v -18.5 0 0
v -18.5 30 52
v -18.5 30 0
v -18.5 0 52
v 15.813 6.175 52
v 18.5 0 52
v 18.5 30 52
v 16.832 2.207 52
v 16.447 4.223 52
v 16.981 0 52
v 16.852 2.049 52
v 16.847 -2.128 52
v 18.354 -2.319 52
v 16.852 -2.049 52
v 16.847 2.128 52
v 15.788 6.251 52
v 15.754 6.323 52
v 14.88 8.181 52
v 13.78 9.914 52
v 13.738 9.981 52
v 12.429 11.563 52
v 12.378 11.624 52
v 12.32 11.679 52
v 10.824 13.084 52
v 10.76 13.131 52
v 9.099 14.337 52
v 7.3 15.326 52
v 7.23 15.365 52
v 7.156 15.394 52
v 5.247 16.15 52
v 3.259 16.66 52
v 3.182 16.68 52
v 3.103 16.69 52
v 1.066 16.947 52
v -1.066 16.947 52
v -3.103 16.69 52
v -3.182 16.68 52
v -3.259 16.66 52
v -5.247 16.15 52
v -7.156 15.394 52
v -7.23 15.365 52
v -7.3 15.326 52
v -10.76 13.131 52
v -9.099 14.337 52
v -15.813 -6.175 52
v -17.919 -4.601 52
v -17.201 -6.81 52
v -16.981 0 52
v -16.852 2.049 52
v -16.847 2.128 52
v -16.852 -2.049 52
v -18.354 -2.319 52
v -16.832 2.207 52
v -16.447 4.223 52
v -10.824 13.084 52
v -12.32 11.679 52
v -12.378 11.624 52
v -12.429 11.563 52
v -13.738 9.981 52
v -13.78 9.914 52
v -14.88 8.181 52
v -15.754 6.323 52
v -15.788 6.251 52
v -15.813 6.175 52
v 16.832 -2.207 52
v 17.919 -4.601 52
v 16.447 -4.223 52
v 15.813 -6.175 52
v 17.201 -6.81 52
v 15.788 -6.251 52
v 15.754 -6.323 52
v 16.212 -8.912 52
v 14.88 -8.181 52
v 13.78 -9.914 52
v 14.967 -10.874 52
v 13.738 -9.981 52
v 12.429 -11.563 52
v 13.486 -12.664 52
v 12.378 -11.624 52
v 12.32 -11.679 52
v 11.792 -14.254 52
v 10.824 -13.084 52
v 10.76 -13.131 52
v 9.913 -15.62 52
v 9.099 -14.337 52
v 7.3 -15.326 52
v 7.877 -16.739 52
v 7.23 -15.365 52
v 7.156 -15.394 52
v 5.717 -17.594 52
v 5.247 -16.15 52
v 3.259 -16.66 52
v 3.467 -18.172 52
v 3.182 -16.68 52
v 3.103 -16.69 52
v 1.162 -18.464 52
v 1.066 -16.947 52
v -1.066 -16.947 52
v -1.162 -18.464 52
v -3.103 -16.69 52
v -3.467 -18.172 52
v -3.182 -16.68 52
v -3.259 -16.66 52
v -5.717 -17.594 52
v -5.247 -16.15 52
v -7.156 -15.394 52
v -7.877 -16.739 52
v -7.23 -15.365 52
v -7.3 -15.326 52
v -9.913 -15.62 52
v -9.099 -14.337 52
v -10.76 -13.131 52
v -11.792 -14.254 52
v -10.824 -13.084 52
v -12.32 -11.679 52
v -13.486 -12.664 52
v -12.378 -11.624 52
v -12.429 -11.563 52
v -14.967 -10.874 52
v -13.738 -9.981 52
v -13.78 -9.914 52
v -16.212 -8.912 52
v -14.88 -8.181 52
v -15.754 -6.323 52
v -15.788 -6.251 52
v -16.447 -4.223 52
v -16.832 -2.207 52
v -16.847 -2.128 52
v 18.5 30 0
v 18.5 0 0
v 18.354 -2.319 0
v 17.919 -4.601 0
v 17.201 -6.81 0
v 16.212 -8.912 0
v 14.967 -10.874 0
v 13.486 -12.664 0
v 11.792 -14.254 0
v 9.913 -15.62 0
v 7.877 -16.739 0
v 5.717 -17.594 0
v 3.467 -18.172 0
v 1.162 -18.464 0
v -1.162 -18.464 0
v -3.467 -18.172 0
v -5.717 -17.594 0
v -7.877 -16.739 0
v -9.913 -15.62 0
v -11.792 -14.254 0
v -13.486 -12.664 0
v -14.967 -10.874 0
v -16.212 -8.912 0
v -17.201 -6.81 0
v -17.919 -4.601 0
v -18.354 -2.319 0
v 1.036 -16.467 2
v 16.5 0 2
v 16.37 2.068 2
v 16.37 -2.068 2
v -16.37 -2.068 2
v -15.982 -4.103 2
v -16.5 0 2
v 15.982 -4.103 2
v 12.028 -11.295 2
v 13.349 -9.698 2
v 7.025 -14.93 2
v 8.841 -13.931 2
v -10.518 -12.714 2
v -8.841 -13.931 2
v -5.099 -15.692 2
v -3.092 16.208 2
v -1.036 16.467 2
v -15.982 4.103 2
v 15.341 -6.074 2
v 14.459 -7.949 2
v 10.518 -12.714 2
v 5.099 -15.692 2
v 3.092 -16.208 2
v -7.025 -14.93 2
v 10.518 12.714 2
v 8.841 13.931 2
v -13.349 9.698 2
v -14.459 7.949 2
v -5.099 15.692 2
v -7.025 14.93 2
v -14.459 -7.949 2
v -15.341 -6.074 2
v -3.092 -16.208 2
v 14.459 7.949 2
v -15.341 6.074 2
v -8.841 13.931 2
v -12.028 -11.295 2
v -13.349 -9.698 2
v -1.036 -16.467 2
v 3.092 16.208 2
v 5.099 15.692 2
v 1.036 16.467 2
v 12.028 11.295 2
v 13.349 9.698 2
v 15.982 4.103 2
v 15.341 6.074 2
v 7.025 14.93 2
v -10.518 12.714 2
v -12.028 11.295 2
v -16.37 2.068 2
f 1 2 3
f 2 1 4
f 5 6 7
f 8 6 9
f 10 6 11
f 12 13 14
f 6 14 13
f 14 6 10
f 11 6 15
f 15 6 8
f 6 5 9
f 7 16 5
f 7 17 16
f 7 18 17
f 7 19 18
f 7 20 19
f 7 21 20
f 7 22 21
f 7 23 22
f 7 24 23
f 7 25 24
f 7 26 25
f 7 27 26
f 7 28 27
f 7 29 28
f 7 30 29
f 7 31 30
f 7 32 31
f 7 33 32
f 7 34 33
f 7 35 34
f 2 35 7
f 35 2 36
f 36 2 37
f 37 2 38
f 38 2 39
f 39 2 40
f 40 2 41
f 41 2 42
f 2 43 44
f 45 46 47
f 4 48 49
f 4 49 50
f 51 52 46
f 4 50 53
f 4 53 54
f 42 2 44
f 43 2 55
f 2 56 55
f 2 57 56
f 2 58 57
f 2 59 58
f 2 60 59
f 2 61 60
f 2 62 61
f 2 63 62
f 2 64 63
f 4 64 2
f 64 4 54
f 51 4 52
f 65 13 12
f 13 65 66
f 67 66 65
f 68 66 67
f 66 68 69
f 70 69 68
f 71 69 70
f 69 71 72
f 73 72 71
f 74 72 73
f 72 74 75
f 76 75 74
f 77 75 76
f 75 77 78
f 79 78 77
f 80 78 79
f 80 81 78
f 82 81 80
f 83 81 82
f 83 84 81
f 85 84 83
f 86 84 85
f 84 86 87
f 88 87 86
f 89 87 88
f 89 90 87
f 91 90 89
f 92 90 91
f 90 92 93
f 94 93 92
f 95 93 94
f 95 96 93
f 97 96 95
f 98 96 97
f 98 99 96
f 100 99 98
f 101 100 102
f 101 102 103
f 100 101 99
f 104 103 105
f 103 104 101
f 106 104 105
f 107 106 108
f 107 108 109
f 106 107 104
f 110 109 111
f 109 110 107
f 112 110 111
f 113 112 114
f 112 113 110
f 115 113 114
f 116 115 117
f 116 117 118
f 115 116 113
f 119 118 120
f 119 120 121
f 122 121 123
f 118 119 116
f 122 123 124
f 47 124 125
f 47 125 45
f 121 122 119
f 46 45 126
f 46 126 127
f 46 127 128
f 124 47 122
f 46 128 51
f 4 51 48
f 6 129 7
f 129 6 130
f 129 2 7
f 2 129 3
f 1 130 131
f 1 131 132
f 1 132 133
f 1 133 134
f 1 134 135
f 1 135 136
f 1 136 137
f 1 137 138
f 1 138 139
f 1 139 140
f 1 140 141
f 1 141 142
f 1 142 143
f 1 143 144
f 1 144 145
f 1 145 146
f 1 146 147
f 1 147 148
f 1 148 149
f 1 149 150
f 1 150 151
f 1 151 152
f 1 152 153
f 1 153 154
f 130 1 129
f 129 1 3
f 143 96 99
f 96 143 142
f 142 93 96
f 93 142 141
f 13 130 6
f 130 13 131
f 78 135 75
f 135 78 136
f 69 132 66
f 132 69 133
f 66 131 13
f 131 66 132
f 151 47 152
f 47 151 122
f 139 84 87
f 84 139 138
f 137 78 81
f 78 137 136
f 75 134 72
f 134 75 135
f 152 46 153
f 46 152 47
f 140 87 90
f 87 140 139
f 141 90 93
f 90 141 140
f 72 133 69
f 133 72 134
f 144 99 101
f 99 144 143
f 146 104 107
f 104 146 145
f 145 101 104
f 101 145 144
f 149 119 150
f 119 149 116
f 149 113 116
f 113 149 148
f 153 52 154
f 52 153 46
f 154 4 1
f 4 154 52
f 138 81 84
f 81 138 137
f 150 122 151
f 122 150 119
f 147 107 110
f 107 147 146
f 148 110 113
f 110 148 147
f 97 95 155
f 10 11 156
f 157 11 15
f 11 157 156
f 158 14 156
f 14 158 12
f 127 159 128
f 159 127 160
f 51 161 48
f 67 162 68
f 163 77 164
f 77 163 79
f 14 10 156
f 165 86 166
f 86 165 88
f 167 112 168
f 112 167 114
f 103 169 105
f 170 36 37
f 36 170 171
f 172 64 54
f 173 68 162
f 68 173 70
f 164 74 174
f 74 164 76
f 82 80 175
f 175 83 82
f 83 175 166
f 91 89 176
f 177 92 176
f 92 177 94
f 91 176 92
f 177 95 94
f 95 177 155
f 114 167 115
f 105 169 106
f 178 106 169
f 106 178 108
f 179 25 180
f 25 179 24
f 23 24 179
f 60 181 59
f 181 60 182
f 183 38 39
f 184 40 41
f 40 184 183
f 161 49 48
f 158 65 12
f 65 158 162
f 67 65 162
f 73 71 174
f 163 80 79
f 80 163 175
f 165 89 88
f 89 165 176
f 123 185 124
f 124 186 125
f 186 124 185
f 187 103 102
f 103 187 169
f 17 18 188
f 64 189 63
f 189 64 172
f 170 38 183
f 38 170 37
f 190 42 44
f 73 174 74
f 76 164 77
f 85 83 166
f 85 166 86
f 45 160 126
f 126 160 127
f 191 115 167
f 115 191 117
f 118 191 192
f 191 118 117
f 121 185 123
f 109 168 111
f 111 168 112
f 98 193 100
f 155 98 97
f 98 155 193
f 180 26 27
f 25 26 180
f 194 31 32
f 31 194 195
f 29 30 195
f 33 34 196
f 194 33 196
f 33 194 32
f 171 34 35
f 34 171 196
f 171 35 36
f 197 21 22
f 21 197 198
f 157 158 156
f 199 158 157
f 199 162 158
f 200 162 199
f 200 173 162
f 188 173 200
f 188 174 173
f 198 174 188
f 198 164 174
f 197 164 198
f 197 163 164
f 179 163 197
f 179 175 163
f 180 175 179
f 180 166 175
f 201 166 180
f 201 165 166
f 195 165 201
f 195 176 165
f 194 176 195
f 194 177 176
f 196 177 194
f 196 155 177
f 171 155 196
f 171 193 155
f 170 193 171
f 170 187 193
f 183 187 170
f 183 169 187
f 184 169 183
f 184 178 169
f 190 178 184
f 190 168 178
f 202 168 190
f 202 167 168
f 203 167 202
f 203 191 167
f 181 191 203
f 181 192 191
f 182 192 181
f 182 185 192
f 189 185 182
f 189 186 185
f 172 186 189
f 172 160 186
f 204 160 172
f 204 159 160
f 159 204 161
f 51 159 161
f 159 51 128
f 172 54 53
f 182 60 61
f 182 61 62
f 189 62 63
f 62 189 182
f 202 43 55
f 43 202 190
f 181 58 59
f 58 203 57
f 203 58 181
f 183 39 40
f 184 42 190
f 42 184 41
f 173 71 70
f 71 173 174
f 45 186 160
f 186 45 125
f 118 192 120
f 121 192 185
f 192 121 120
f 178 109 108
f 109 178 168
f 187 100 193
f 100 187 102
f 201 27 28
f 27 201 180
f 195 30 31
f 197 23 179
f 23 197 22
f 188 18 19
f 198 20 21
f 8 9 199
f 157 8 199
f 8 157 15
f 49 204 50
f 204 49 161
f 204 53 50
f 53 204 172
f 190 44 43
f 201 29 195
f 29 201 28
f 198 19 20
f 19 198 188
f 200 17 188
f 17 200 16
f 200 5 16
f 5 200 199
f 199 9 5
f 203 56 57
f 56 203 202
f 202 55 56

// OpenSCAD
$fn=50;
difference(){	
	union(){
	translate([-18.5,0,0]) cube([37,30,52]);
	cylinder(52,37/2,37/2);
	
	}
	
	translate ([0,0,2])cylinder(52,33/2,34/2);
	
}
